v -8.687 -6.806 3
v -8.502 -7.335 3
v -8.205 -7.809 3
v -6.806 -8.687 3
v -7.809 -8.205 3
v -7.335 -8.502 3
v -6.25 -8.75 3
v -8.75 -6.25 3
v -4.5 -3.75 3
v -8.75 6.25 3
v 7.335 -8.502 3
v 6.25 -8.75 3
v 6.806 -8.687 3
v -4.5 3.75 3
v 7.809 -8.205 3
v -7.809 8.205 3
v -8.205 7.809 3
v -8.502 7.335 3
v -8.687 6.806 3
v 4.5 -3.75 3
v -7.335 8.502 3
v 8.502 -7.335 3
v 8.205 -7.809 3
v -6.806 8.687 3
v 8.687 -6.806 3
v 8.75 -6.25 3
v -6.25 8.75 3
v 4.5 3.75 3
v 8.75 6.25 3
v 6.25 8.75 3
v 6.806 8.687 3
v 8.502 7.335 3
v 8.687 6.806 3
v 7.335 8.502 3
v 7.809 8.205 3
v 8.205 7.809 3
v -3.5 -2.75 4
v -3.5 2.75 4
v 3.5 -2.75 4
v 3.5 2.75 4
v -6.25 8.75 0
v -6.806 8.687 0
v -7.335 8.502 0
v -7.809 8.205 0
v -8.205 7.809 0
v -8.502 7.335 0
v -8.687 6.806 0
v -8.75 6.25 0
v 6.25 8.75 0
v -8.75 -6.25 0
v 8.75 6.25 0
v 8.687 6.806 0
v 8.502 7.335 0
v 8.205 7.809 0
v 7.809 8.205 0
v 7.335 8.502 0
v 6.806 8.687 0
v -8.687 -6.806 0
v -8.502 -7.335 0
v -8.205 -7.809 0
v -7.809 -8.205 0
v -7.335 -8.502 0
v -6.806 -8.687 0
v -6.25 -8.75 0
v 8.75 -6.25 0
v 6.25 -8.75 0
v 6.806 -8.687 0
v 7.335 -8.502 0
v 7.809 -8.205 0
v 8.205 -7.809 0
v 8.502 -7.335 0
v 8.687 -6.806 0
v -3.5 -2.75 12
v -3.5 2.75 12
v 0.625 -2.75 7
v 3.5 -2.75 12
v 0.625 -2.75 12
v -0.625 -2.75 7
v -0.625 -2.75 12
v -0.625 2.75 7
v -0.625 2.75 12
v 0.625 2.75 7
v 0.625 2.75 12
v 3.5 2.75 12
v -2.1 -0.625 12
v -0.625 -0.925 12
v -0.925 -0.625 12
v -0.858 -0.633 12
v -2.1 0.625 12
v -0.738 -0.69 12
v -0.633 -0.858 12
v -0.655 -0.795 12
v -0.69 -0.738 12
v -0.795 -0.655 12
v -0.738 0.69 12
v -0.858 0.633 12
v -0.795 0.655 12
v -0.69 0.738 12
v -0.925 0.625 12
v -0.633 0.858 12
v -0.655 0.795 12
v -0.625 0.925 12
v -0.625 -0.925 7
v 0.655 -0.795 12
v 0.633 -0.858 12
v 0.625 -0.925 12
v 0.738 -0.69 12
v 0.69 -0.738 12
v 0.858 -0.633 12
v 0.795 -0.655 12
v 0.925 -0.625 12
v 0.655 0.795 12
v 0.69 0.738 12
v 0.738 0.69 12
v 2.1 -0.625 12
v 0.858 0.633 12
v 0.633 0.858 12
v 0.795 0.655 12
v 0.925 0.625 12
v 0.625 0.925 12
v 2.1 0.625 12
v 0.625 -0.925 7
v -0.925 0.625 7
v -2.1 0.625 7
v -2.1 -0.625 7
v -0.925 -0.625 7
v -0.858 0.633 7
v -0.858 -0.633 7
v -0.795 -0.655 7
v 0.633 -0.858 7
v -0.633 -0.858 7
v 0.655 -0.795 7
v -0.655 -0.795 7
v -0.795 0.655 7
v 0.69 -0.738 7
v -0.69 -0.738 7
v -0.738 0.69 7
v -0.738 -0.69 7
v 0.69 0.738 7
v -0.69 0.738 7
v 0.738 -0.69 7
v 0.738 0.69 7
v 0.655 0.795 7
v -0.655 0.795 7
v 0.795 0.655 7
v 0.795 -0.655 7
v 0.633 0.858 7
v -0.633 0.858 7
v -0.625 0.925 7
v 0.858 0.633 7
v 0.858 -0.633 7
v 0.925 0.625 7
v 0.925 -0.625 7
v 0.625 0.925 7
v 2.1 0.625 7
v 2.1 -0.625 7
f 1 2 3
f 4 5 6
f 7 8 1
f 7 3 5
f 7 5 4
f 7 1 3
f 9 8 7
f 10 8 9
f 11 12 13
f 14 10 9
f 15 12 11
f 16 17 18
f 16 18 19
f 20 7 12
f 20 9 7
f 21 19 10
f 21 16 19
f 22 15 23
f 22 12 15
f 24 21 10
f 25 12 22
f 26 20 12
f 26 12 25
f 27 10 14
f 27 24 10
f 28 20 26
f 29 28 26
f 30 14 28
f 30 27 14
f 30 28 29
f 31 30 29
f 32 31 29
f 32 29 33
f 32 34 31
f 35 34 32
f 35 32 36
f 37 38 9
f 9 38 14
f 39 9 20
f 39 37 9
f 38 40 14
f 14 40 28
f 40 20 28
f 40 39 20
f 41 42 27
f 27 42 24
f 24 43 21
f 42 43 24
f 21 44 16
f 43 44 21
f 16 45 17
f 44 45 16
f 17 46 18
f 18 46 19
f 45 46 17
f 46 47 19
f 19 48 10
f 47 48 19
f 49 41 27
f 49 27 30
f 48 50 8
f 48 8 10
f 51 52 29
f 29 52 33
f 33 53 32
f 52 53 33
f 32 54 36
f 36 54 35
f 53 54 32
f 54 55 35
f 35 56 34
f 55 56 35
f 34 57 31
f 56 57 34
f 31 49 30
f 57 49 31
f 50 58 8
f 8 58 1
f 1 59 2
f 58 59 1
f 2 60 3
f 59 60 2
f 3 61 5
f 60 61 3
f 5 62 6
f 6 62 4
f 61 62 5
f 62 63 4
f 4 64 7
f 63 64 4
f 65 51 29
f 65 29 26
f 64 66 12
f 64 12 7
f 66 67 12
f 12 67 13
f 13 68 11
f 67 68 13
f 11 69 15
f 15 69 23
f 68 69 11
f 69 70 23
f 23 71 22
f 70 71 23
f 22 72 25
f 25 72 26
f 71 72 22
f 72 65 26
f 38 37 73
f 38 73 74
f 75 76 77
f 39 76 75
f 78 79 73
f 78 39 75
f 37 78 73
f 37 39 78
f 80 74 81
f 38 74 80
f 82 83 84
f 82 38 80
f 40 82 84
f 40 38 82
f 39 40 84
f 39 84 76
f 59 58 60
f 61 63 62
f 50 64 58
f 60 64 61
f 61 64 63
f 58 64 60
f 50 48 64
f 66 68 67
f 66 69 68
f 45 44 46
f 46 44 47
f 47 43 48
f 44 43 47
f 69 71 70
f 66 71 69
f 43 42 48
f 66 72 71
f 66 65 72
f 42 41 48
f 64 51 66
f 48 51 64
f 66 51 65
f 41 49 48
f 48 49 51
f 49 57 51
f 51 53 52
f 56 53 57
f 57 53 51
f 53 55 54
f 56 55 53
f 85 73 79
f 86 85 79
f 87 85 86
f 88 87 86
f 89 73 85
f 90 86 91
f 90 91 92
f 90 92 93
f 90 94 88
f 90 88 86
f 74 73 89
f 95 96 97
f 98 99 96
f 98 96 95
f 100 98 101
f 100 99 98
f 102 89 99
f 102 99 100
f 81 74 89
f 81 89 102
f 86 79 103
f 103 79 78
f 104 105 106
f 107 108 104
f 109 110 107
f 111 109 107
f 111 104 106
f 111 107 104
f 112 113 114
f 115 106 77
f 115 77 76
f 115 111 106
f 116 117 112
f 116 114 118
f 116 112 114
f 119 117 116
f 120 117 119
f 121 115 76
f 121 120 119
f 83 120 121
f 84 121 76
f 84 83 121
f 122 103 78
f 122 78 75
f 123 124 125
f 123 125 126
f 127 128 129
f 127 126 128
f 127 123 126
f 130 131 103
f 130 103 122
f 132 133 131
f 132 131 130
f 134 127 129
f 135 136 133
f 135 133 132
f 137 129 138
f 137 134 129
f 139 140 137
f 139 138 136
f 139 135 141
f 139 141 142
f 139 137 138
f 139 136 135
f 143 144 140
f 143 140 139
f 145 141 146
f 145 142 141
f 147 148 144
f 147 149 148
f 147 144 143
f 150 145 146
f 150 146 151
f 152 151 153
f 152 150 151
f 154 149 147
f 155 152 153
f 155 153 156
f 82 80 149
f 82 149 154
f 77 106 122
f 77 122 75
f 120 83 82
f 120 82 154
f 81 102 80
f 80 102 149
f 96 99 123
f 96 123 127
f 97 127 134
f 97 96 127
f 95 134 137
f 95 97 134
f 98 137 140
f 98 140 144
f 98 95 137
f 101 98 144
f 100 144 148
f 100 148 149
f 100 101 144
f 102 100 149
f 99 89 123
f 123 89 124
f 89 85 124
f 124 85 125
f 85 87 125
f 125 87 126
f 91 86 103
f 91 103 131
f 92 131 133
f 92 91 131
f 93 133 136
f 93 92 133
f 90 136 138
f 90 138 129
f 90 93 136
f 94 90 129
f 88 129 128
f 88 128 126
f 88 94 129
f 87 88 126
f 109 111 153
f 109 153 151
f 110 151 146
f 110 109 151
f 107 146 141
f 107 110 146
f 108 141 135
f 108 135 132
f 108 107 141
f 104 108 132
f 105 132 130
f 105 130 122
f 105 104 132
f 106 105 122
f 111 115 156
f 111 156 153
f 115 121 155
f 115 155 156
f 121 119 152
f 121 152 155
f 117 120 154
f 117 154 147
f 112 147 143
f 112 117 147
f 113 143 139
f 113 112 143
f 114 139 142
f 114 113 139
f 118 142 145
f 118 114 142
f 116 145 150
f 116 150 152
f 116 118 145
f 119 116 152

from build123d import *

# Parameters (mm, degrees)
PAD_DEPTH    = 3
SKETCH001_W  = 7
SKETCH001_H  = 5.5
PAD001_DEPTH = 9
POCKET_DEPTH = 5
CHAMFER_SIZE = 1


with BuildPart() as part:
    # Sketch → Pad (new body)
    with BuildSketch(Plane.XY):
        with BuildLine():
            ThreePointArc((-6.25, 8.75), (-8.017767, 8.017767), (-8.75, 6.25))
            Line((-8.75, -6.25), (-8.75, 6.25))
            ThreePointArc((-8.75, -6.25), (-8.017767, -8.017767), (-6.25, -8.75))
            Line((6.25, -8.75), (-6.25, -8.75))
            ThreePointArc((6.25, -8.75), (8.017767, -8.017767), (8.75, -6.25))
            Line((8.75, 6.25), (8.75, -6.25))
            ThreePointArc((8.75, 6.25), (8.017767, 8.017767), (6.25, 8.75))
            Line((-6.25, 8.75), (6.25, 8.75))
        make_face()
    extrude(amount=PAD_DEPTH)

    # Sketch001 (on Face10 of Pad) → Pad001 (join)
    with BuildSketch(Plane.XY.offset(3)):
        Rectangle(SKETCH001_W, SKETCH001_H)
    extrude(amount=PAD001_DEPTH)

    # Sketch002 (on Face15 of Pad001) → Pocket (cut)
    with BuildSketch(Plane.XY.offset(12)):
        with BuildLine():
            Line((-0.625, 2.75), (-0.625, 0.925))
            ThreePointArc((-0.925, 0.625), (-0.712868, 0.712868), (-0.625, 0.925))
            Line((-0.925, 0.625), (-2.1, 0.625))
            Line((-2.1, 0.625), (-2.1, -0.625))
            Line((-2.1, -0.625), (-0.925, -0.625))
            ThreePointArc((-0.625, -0.925), (-0.712868, -0.712868), (-0.925, -0.625))
            Line((-0.625, -0.925), (-0.625, -2.75))
            Line((-0.625, -2.75), (0.625, -2.75))
            Line((0.625, -0.925), (0.625, -2.75))
            ThreePointArc((0.925, -0.625), (0.712868, -0.712868), (0.625, -0.925))
            Line((2.1, -0.625), (0.925, -0.625))
            Line((2.1, 0.625), (2.1, -0.625))
            Line((0.925, 0.625), (2.1, 0.625))
            ThreePointArc((0.625, 0.925), (0.712868, 0.712868), (0.925, 0.625))
            Line((0.625, 2.75), (0.625, 0.925))
            Line((-0.625, 2.75), (0.625, 2.75))
        make_face()
    extrude(amount=-POCKET_DEPTH, mode=Mode.SUBTRACT)

    # Chamfer
    chamfer_edges = [part.edges().sort_by_distance(p)[0] for p in [
        (-3.5, 0, 3),
        (0, 2.75, 3),
        (0, -2.75, 3),
        (3.5, 0, 3),
    ]]
    chamfer(chamfer_edges, length=CHAMFER_SIZE)


solid = part.part
